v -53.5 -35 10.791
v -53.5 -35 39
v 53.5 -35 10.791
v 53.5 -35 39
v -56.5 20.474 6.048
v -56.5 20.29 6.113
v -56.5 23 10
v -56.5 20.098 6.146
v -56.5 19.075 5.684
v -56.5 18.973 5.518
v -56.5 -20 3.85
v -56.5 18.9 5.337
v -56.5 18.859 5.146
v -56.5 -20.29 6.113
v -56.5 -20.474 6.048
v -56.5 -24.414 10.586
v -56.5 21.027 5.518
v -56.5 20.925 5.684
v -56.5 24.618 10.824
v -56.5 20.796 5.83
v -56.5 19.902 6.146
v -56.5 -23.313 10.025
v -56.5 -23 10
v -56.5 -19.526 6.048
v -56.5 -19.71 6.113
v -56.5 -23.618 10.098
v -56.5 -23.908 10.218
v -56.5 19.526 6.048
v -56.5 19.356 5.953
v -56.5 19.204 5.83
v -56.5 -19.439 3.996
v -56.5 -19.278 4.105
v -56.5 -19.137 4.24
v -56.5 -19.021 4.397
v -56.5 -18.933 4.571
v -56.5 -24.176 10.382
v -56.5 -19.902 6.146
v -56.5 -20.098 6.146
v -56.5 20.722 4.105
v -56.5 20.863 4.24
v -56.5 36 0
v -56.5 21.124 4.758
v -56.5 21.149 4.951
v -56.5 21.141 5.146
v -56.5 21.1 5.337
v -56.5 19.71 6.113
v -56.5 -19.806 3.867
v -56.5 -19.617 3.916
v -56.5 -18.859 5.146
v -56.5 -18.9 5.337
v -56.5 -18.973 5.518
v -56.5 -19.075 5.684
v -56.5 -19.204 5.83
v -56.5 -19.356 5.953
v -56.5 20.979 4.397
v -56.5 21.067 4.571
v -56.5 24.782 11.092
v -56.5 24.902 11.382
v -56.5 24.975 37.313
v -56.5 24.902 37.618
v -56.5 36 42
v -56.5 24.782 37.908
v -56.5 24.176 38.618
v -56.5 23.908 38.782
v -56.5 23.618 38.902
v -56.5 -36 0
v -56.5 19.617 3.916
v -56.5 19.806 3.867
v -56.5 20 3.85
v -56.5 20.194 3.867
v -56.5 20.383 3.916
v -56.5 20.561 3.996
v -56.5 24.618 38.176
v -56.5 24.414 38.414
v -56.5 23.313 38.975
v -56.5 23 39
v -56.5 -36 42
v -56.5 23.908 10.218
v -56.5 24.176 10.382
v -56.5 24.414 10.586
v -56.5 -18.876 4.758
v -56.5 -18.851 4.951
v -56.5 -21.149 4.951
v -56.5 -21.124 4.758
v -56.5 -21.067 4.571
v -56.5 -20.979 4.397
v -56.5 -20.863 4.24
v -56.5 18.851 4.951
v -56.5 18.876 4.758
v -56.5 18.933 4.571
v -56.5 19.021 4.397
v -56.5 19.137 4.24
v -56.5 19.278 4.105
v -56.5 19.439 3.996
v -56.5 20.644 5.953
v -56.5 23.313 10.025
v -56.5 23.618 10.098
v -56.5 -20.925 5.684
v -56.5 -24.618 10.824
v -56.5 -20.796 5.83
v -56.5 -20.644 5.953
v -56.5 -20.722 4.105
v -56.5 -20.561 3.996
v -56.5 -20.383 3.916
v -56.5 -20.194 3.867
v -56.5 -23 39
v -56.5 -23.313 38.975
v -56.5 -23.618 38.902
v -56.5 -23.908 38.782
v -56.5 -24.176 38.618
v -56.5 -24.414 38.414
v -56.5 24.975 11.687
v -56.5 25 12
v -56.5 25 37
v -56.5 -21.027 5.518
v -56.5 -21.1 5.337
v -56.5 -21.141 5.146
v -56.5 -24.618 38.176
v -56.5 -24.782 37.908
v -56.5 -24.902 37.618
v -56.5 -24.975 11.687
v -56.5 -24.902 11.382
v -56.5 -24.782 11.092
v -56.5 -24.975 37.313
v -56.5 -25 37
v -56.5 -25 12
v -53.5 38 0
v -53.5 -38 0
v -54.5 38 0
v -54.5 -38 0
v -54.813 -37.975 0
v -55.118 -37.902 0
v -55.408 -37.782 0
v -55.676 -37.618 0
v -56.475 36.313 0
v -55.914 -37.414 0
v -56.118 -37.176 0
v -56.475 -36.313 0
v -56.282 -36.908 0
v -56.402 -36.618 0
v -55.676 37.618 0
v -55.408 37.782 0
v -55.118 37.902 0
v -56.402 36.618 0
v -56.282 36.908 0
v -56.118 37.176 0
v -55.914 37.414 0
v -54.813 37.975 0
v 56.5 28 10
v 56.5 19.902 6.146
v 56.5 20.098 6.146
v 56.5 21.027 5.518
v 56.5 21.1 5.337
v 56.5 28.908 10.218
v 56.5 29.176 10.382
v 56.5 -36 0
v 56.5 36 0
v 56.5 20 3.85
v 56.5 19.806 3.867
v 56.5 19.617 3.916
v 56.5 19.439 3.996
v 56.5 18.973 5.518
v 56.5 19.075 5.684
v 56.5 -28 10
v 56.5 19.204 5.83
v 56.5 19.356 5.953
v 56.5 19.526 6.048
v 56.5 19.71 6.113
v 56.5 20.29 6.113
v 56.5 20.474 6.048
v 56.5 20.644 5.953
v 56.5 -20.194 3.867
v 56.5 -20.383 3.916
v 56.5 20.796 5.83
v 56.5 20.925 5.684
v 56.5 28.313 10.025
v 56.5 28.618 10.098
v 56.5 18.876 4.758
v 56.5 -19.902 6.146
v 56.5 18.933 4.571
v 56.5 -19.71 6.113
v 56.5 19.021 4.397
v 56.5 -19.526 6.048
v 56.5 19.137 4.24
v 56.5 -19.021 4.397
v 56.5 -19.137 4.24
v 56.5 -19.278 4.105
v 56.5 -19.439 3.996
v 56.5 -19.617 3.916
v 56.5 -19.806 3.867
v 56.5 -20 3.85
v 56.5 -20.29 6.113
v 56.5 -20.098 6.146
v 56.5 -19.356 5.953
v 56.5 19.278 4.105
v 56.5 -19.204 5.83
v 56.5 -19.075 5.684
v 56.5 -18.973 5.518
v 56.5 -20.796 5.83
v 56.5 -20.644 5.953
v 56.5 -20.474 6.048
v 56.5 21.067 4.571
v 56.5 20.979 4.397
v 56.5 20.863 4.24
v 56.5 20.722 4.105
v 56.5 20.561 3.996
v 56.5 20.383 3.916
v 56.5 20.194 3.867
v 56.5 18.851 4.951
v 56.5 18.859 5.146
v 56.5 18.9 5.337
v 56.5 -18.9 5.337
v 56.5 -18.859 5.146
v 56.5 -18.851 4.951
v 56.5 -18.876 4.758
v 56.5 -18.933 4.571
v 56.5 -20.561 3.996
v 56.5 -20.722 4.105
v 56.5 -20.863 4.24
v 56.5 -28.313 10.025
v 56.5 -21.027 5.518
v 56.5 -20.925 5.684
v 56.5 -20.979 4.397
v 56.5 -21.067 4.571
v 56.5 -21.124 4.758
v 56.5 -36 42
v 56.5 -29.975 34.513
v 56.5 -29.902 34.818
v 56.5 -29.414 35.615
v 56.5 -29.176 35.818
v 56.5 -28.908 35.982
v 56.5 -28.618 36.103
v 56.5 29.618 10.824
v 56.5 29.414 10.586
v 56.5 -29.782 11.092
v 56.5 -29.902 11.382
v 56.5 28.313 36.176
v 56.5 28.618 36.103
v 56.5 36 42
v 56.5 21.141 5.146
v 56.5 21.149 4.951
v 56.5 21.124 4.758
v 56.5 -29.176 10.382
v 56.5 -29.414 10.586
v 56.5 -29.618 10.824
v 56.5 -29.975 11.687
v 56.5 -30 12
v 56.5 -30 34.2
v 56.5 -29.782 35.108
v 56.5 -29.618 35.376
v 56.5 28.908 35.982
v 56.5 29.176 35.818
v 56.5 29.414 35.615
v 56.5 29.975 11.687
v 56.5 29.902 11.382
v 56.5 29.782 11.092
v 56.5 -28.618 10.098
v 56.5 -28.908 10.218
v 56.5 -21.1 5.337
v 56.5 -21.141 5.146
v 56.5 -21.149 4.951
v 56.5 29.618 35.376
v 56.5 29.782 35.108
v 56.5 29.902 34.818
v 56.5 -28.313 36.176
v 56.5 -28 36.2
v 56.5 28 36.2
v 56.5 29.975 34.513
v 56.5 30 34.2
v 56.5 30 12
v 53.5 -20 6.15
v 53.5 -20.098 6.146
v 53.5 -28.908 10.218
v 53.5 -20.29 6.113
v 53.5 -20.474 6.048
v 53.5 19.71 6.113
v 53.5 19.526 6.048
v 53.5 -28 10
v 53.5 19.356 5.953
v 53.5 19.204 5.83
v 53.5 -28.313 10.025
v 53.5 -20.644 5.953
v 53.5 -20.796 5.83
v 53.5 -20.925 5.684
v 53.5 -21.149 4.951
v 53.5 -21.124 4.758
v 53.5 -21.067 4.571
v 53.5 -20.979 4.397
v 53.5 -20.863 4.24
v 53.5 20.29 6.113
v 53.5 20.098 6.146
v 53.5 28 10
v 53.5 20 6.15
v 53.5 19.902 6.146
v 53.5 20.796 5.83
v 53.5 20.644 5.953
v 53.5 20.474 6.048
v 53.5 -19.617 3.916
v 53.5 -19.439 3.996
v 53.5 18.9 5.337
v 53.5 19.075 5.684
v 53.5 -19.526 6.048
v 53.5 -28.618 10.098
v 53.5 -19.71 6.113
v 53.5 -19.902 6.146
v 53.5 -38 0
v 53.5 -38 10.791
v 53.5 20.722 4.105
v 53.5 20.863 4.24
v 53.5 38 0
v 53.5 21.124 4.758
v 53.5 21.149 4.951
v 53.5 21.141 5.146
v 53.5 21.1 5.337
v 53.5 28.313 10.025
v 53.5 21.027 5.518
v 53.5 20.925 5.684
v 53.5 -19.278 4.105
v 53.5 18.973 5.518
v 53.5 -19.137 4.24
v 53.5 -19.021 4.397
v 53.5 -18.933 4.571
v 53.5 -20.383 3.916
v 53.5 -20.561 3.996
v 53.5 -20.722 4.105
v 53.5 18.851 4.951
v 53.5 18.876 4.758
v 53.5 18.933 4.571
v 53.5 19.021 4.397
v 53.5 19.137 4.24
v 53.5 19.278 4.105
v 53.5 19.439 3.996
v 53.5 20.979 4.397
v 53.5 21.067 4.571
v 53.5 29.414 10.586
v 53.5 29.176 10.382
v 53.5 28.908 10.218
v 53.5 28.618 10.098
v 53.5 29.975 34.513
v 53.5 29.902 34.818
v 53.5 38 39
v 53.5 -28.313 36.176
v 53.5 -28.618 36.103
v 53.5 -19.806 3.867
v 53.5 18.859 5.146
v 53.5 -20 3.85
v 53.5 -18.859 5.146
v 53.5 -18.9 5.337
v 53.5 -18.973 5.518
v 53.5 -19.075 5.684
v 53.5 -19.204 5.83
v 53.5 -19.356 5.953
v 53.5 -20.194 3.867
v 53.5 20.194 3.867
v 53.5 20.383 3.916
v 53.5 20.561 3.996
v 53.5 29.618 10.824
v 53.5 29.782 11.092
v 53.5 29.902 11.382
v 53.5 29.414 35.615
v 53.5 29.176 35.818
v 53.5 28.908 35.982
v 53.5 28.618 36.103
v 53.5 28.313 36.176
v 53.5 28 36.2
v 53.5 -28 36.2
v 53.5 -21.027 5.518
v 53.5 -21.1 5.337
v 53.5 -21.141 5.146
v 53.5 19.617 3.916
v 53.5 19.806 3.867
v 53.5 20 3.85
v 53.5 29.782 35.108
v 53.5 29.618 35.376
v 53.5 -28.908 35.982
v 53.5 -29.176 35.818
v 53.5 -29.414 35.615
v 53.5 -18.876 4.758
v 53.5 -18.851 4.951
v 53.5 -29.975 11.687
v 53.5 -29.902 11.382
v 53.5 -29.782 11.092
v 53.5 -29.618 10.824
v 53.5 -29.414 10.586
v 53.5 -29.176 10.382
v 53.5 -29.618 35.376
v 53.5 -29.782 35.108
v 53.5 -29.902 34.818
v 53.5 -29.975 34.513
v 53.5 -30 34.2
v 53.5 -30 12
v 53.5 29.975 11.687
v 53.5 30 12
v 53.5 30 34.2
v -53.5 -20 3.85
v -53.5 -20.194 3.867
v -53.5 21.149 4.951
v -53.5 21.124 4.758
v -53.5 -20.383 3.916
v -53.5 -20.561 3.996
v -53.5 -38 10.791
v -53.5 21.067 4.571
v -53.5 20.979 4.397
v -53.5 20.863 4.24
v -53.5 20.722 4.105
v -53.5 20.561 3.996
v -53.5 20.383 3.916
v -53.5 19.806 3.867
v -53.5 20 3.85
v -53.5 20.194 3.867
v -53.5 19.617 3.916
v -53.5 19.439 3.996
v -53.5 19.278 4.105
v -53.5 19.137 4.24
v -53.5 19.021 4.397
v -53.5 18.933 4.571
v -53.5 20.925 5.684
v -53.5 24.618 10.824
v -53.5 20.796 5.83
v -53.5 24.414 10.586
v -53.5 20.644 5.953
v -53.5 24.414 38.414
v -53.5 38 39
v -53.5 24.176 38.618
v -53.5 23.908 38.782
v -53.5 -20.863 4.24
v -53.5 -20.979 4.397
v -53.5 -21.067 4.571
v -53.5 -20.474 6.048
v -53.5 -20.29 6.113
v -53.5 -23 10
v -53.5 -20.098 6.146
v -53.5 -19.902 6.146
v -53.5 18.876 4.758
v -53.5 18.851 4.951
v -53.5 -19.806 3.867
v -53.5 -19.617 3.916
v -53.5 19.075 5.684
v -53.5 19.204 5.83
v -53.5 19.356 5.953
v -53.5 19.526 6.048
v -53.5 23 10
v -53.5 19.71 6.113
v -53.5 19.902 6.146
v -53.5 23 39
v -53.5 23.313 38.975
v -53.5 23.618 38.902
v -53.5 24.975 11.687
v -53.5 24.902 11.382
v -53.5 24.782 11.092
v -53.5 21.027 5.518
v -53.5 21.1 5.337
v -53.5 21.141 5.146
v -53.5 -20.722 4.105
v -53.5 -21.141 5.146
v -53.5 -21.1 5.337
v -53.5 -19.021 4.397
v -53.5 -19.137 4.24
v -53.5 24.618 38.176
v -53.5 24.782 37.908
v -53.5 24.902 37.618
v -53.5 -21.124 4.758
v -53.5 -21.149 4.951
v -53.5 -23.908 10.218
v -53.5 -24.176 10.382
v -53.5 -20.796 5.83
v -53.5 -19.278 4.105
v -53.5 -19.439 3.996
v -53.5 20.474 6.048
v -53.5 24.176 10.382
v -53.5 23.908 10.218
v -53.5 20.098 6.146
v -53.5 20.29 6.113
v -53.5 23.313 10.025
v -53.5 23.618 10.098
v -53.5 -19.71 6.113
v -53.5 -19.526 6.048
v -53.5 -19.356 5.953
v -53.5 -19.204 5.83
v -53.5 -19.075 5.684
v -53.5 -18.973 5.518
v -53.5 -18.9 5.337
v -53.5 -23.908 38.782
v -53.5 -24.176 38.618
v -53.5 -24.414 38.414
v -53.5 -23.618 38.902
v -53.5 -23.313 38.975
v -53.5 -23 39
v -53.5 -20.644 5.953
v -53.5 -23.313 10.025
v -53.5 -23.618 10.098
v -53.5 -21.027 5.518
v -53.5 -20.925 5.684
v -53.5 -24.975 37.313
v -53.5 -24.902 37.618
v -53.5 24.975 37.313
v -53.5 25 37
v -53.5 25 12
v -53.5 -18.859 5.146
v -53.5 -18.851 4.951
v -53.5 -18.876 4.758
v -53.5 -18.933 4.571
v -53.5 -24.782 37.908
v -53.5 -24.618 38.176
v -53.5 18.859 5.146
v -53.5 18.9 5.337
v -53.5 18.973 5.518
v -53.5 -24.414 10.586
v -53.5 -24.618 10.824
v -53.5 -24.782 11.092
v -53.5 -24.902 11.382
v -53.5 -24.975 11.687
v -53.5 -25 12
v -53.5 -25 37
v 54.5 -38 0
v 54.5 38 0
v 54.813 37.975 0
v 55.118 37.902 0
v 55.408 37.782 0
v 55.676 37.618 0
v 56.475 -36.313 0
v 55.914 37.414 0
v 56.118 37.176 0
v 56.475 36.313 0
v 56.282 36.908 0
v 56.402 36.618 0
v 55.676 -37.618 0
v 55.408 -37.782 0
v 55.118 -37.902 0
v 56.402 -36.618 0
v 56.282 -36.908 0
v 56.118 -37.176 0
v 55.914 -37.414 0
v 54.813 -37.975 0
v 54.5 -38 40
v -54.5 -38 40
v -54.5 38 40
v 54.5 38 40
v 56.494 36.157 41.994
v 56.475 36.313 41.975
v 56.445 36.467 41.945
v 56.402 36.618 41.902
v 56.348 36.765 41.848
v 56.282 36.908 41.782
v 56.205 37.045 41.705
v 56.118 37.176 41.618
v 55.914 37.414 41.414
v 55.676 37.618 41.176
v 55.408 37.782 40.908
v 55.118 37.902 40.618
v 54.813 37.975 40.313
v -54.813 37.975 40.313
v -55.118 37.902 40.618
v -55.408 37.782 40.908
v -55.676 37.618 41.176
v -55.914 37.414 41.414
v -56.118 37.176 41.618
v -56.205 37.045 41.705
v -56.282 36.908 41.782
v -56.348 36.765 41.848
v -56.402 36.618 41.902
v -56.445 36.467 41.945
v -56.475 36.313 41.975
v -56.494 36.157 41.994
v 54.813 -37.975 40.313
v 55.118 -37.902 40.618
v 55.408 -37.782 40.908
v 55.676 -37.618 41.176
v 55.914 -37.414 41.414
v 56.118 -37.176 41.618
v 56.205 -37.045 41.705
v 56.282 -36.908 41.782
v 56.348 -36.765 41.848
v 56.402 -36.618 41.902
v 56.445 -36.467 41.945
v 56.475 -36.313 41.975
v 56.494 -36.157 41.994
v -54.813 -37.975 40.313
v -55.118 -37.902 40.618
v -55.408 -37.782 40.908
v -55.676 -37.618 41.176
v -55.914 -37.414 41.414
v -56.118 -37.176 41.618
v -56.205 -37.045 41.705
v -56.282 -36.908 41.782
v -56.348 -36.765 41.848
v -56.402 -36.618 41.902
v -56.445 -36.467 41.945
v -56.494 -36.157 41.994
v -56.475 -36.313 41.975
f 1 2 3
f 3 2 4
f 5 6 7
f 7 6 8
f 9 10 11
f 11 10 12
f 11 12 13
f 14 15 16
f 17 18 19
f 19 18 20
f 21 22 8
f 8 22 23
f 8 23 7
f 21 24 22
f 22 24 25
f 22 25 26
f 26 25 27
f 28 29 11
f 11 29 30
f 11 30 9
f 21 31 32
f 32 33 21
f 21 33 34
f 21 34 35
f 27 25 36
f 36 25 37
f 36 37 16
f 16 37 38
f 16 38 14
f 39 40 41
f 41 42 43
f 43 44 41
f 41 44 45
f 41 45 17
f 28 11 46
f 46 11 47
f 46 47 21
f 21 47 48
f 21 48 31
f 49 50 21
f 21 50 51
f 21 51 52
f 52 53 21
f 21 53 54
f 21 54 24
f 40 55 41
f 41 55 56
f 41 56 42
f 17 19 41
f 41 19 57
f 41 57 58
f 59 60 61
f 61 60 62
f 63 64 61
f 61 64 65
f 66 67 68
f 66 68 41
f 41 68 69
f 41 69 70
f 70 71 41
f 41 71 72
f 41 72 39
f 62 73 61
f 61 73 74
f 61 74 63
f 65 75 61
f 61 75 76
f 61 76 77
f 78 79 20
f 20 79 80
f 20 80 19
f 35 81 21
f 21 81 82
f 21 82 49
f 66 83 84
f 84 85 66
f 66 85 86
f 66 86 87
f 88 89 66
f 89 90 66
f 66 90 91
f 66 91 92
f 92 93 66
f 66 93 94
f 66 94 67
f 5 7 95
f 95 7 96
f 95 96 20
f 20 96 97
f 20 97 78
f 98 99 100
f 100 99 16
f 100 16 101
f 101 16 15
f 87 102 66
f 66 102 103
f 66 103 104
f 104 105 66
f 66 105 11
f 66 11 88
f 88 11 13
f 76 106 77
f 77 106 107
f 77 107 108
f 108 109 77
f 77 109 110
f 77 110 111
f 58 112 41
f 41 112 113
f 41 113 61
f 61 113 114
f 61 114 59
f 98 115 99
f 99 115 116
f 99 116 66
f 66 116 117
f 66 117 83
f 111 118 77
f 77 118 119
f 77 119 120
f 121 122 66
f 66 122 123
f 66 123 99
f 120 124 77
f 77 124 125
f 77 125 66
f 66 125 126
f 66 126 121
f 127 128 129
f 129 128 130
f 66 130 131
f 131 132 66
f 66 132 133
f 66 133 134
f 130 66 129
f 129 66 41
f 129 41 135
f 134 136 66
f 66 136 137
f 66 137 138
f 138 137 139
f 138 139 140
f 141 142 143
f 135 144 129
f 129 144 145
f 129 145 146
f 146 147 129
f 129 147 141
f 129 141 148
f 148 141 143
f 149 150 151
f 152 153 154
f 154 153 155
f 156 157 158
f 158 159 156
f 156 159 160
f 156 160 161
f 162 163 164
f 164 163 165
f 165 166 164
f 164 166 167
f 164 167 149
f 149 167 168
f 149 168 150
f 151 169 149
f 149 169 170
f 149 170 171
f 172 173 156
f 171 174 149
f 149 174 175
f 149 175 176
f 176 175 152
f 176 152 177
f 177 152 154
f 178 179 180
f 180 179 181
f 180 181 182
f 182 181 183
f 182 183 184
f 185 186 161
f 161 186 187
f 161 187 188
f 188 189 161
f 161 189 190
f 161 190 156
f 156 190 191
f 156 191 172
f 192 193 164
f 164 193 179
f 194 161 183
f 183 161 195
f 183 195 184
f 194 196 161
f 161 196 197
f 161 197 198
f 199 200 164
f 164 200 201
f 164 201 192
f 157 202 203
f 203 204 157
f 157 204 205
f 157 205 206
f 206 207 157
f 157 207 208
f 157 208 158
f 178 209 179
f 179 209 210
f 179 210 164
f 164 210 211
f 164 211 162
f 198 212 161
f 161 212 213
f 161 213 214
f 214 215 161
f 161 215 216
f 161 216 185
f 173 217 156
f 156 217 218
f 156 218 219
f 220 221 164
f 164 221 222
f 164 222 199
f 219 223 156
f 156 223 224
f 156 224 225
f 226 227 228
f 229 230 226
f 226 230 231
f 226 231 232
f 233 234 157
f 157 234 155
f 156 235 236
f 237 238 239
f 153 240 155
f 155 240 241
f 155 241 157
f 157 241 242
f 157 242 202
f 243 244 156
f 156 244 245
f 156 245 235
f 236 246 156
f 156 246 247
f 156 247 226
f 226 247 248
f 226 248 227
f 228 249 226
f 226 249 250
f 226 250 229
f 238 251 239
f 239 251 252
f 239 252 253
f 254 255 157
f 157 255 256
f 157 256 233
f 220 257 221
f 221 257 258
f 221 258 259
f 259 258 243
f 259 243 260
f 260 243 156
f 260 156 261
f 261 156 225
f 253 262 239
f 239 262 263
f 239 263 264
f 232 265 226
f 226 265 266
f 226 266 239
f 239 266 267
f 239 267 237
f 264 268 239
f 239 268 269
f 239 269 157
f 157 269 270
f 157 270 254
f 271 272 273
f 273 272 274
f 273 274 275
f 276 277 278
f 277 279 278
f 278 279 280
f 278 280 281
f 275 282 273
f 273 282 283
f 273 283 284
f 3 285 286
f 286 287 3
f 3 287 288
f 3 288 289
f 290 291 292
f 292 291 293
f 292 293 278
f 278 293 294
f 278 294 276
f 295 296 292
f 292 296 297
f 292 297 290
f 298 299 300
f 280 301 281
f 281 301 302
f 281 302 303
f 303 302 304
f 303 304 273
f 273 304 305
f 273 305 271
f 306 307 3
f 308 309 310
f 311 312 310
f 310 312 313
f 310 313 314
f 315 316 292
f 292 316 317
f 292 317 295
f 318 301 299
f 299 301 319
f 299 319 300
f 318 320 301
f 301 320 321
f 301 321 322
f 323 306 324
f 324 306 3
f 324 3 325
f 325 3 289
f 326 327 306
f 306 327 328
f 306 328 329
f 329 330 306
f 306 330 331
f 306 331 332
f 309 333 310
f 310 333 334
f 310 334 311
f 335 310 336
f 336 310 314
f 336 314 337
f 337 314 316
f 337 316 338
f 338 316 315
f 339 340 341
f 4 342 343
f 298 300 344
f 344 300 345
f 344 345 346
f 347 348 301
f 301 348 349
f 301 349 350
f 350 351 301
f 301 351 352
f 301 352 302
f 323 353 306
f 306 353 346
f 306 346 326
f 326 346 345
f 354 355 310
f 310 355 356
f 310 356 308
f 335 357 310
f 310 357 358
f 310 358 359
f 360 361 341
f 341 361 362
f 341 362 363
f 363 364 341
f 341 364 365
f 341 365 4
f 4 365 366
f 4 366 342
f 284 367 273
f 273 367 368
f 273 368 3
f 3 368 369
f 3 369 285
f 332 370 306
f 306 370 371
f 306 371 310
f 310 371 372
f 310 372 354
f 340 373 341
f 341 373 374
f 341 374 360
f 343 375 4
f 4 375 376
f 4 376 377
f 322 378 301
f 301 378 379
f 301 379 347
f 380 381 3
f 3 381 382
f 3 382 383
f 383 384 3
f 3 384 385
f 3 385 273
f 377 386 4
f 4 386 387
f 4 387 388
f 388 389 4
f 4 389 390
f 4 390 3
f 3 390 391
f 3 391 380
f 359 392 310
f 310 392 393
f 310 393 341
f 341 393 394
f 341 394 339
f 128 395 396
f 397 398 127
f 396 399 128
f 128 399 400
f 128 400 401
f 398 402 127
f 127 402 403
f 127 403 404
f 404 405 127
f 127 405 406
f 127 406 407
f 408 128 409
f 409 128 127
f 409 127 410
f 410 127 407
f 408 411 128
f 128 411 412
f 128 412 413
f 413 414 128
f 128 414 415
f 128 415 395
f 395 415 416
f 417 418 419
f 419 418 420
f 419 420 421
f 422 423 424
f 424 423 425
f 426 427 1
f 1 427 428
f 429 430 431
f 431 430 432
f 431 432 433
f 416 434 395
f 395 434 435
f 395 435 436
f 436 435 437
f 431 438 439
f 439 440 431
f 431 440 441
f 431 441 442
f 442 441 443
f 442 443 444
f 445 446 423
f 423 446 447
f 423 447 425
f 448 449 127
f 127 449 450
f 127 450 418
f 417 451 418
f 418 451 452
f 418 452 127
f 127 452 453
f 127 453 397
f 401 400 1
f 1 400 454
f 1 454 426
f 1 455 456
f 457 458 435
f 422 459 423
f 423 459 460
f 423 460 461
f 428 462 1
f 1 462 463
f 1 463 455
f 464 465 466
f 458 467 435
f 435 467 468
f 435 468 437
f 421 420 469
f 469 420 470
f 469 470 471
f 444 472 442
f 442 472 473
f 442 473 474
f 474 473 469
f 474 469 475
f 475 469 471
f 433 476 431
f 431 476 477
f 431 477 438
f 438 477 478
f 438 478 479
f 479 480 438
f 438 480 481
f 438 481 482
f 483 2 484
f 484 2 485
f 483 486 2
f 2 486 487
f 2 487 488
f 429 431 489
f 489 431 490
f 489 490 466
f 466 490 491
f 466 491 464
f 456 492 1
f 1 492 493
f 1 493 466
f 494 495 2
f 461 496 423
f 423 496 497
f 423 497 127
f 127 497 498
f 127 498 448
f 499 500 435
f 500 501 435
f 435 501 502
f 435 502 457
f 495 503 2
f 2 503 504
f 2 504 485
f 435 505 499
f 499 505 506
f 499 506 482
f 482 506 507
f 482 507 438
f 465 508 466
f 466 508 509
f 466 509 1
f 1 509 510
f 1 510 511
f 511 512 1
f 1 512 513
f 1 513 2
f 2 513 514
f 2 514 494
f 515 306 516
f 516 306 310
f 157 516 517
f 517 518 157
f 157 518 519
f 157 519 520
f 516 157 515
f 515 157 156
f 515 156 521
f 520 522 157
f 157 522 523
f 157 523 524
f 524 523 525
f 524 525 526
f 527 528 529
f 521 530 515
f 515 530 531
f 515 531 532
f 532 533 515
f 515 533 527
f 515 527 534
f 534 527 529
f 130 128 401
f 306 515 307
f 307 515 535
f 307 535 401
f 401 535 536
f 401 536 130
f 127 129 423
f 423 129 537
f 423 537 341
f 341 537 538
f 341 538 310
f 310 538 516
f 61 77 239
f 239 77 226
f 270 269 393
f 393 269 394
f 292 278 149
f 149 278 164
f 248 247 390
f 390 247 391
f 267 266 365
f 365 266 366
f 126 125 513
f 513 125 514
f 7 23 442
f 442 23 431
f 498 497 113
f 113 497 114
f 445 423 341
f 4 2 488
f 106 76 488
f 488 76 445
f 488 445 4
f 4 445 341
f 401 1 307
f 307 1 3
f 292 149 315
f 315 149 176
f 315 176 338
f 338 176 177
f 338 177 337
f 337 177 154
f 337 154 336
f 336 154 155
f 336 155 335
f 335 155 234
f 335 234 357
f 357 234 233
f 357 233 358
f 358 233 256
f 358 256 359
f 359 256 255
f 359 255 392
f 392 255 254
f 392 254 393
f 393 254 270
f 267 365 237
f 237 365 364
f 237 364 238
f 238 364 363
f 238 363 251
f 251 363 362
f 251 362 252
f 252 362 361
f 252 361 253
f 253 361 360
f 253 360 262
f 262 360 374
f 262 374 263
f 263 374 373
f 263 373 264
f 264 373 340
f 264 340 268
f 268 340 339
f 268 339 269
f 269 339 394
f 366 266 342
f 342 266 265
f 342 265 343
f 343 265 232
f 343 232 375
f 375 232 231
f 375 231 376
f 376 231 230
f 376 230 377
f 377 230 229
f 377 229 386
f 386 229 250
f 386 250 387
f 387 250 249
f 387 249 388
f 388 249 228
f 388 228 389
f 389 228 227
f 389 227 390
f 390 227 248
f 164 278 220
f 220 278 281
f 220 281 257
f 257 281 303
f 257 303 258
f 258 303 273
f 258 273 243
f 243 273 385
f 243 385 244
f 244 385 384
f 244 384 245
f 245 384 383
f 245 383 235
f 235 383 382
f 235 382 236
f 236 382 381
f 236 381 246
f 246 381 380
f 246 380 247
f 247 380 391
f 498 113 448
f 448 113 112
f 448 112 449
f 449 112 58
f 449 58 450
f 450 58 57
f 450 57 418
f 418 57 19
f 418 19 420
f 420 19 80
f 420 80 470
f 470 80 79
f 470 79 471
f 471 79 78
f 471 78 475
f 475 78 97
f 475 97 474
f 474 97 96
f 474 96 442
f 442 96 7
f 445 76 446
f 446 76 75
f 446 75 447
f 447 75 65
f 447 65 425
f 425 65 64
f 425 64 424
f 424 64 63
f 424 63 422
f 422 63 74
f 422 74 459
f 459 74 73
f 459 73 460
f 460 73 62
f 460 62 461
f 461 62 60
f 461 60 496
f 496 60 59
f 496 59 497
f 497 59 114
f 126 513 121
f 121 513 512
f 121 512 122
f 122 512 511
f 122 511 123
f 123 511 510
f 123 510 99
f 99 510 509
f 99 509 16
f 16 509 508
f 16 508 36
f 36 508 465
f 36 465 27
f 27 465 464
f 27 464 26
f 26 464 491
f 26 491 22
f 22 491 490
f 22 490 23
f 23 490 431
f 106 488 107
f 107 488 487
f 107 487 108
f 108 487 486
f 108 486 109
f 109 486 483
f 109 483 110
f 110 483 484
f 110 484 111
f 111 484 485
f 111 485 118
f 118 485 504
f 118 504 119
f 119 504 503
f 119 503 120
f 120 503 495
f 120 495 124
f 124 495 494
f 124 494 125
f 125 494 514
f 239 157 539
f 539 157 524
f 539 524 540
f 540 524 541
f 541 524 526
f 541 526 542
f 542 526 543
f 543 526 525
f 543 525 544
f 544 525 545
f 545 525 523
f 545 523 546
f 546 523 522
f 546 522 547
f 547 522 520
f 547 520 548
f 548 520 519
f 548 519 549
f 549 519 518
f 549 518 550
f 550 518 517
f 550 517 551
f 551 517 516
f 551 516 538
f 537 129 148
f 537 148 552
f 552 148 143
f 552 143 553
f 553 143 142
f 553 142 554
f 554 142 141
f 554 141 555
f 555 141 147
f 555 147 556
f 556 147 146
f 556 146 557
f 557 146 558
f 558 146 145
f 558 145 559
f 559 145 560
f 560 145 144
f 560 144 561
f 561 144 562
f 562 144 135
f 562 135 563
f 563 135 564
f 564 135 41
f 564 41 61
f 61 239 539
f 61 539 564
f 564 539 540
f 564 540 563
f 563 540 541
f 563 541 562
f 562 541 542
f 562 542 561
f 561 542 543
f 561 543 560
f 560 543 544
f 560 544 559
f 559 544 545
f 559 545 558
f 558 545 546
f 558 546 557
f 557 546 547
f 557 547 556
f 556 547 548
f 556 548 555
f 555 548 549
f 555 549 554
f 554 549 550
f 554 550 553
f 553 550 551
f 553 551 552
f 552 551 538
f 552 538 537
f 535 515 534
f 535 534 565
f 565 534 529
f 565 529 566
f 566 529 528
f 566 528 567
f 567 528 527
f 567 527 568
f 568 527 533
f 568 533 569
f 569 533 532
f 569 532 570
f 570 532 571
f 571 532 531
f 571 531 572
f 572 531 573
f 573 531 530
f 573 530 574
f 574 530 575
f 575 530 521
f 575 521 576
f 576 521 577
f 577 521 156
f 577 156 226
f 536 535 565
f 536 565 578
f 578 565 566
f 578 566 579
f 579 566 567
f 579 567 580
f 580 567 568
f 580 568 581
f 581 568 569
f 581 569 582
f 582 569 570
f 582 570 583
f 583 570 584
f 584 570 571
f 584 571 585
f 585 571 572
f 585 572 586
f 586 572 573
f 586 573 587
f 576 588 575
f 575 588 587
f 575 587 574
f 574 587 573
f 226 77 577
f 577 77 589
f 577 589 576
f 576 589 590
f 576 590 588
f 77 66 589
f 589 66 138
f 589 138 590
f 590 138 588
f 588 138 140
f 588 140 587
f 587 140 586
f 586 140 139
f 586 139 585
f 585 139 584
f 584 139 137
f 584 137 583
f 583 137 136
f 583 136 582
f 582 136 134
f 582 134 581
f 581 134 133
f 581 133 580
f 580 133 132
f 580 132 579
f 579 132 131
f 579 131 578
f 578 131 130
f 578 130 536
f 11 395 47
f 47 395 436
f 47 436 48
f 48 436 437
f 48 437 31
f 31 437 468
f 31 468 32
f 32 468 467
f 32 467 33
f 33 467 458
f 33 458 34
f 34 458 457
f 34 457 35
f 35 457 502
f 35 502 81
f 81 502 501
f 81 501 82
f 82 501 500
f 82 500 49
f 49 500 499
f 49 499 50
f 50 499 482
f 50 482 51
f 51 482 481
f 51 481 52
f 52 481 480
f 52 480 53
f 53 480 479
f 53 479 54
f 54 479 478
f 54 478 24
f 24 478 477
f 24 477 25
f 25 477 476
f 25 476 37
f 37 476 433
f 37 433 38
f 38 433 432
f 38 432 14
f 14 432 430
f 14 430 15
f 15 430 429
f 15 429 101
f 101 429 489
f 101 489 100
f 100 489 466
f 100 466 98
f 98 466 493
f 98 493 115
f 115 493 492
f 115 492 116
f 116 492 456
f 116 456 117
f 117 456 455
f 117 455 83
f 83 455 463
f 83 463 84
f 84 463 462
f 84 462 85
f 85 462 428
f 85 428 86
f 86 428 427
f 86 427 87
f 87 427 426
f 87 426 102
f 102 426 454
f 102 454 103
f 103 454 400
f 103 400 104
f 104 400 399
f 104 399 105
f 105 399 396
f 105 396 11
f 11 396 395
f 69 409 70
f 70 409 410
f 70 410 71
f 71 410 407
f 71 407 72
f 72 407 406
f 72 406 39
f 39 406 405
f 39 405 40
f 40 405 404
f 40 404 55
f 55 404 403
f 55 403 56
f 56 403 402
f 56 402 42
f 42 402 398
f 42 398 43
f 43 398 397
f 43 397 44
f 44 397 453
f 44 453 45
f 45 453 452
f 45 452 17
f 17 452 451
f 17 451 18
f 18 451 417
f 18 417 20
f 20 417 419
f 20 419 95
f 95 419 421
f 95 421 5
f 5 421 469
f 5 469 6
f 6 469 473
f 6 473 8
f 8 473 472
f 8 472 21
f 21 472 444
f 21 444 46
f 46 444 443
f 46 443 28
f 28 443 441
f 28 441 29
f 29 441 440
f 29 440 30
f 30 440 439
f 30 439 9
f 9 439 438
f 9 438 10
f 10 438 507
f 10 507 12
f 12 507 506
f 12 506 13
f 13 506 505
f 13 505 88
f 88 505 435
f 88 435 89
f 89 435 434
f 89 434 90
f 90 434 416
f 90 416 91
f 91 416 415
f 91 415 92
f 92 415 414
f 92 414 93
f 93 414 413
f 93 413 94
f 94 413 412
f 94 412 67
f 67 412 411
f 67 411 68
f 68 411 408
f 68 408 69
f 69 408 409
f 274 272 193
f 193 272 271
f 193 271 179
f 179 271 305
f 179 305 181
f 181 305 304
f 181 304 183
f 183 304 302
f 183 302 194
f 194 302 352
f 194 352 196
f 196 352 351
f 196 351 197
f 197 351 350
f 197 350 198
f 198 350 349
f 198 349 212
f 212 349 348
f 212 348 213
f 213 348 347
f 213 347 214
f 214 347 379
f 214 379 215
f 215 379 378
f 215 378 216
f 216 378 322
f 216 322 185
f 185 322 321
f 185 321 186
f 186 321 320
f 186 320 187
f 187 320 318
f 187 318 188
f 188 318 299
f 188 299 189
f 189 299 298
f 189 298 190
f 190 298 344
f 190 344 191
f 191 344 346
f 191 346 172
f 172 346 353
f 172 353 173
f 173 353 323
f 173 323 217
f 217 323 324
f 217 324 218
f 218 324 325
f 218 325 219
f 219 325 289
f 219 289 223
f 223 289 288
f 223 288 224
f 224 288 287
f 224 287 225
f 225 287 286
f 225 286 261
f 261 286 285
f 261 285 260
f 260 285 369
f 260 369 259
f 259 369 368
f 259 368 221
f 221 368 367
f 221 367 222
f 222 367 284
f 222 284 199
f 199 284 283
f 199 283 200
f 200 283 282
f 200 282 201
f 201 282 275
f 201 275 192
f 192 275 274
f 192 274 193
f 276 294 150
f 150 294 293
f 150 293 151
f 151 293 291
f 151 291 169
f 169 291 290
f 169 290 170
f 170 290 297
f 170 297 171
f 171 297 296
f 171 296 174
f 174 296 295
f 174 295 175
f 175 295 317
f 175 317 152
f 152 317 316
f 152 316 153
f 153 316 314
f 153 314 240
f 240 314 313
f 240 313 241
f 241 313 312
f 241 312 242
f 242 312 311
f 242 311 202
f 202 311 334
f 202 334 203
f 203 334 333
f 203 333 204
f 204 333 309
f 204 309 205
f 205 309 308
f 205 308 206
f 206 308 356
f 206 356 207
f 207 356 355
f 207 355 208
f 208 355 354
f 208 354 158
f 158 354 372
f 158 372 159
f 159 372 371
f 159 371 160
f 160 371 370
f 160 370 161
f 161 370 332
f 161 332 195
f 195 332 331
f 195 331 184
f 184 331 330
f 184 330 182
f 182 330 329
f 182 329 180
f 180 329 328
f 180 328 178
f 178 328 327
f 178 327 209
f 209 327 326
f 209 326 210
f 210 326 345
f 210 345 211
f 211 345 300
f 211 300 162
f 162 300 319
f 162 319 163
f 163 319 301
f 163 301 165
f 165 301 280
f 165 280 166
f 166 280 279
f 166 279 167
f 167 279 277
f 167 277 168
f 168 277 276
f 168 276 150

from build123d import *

# Parameters (mm, degrees)
SKETCH_1_W          = 113
SKETCH_1_H          = 76
SKETCH_1_W_2        = 107
SKETCH_1_H_2        = 70
EXTRUDE_1_DEPTH     = 40
SKETCH_2_W          = 113
SKETCH_2_H          = 76
EXTRUDE_2_DEPTH     = 2
SKETCH_3_R          = 1.05
CUT_EXTRUDE_1_DEPTH = 127.400158228
SKETCH_6_W          = 60
SKETCH_6_H          = 30
CUT_EXTRUDE_2_DEPTH = 102.416221582
SKETCH_7_W          = 107
SKETCH_7_H          = 8.791278805
CUT_EXTRUDE_3_DEPTH = 102.416221582
SKETCH_9_W          = 26.200451213
SKETCH_9_H          = 60
CUT_EXTRUDE_4_DEPTH = 3
SKETCH_10_W         = 30
SKETCH_10_H         = 50
CUT_EXTRUDE_5_DEPTH = 3
SKETCH_13_W         = 107
SKETCH_13_H         = 40
CUT_EXTRUDE_6_DEPTH = 3
SKETCH_17_W         = 113
SKETCH_17_H         = 76
EXTRUDE_4_DEPTH     = 1
SKETCH_18_W         = 107
SKETCH_18_H         = 3
CUT_EXTRUDE_7_DEPTH = 2
FILLET_1_R          = 2
SKETCH_19_R         = 1.15
CUT_EXTRUDE_8_DEPTH = 127.400158228


with BuildPart() as part:
    # 草图1 → 凸台-拉伸1 (new body)
    with BuildSketch(Plane.XY):
        Rectangle(SKETCH_1_W, SKETCH_1_H)
        Rectangle(SKETCH_1_W_2, SKETCH_1_H_2, mode=Mode.SUBTRACT)
    extrude(amount=EXTRUDE_1_DEPTH)

    # 草图2 → 凸台-拉伸2 (add)
    with BuildSketch(Plane.XY.offset(40)):
        Rectangle(SKETCH_2_W, SKETCH_2_H)
    extrude(amount=EXTRUDE_2_DEPTH)

    # 草图3 → 切除-拉伸1 (cut, through all)
    with BuildSketch(Plane.ZY.offset(56.5)):
        with Locations((5, 20)):
            Circle(SKETCH_3_R)
        with Locations(Location((5, -20, 0), (0, 0, 180))):
            Circle(SKETCH_3_R)
    extrude(amount=-CUT_EXTRUDE_1_DEPTH, mode=Mode.SUBTRACT)

    # 草图6 → 切除-拉伸2 (cut, through all)
    with BuildSketch(Plane.XZ.offset(-35)):
        with Locations((-23.5, 15)):
            Rectangle(SKETCH_6_W, SKETCH_6_H)
    extrude(amount=-CUT_EXTRUDE_2_DEPTH, mode=Mode.SUBTRACT)

    # 草图7 → 切除-拉伸3 (cut, through all)
    with BuildSketch(Plane(origin=(0, -35, 0), x_dir=(1, 0, 0), z_dir=(0, 1, 0))):
        with Locations((0, -4.395639403)):
            Rectangle(SKETCH_7_W, SKETCH_7_H)
    extrude(amount=-CUT_EXTRUDE_3_DEPTH, mode=Mode.SUBTRACT)

    # 草图9 → 切除-拉伸4 (cut)
    with BuildSketch(Plane(origin=(56.5, 0, 0), x_dir=(0, 0, -1), z_dir=(1, 0, 0))):
        with Locations((-23.100225607, 0)):
            Rectangle(SKETCH_9_W, SKETCH_9_H)
    extrude(amount=-CUT_EXTRUDE_4_DEPTH, mode=Mode.SUBTRACT)

    # 草图10 → 切除-拉伸5 (cut)
    with BuildSketch(Plane.ZY.offset(56.5)):
        with Locations((25, 0)):
            Rectangle(SKETCH_10_W, SKETCH_10_H)
    extrude(amount=-CUT_EXTRUDE_5_DEPTH, mode=Mode.SUBTRACT)

    # 草图13 → 切除-拉伸6 (cut)
    with BuildSketch(Plane(origin=(0, 38, 0), x_dir=(1, 0, 0), z_dir=(0, 1, 0))):
        with Locations((0, -20)):
            Rectangle(SKETCH_13_W, SKETCH_13_H)
    extrude(amount=-CUT_EXTRUDE_6_DEPTH, mode=Mode.SUBTRACT)

    # 草图17 → 凸台-拉伸4 (add)
    with BuildSketch(Plane(origin=(0, 0, 40), x_dir=(-1, 0, 0), z_dir=(0, 0, -1))):
        Rectangle(SKETCH_17_W, SKETCH_17_H)
    extrude(amount=EXTRUDE_4_DEPTH)

    # 草图18 → 切除-拉伸7 (cut)
    with BuildSketch(Plane(origin=(0, 0, 8.791278805), x_dir=(-1, 0, 0), z_dir=(0, 0, -1))):
        with Locations((0, -36.5)):
            Rectangle(SKETCH_18_W, SKETCH_18_H)
    extrude(amount=-CUT_EXTRUDE_7_DEPTH, mode=Mode.SUBTRACT)

    # 圆角1
    fillet_1_edges = [part.edges().sort_by_distance(p)[0] for p in [
        (-55, -25, 10),
        (-55, 25, 10),
        (-55, 25, 39),
        (-55, -25, 39),
        (0, -38, 42),
        (0, 38, 42),
        (-56.5, 38, 21),
        (56.5, 38, 21),
        (56.5, -38, 21),
        (-56.5, -38, 21),
        (55, 30, 36.200451213),
        (55, 30, 10),
        (55, -30, 10),
        (55, -30, 36.200451213),
    ]]
    fillet(fillet_1_edges, radius=FILLET_1_R)

    # 草图19 → 切除-拉伸8 (cut, through all)
    with BuildSketch(Plane(origin=(56.5, 0, 0), x_dir=(0, 0, -1), z_dir=(1, 0, 0))):
        with Locations((-5, 20)):
            Circle(SKETCH_19_R)
        with Locations((-5, -20)):
            Circle(SKETCH_19_R)
    extrude(amount=-CUT_EXTRUDE_8_DEPTH, mode=Mode.SUBTRACT)


solid = part.part
